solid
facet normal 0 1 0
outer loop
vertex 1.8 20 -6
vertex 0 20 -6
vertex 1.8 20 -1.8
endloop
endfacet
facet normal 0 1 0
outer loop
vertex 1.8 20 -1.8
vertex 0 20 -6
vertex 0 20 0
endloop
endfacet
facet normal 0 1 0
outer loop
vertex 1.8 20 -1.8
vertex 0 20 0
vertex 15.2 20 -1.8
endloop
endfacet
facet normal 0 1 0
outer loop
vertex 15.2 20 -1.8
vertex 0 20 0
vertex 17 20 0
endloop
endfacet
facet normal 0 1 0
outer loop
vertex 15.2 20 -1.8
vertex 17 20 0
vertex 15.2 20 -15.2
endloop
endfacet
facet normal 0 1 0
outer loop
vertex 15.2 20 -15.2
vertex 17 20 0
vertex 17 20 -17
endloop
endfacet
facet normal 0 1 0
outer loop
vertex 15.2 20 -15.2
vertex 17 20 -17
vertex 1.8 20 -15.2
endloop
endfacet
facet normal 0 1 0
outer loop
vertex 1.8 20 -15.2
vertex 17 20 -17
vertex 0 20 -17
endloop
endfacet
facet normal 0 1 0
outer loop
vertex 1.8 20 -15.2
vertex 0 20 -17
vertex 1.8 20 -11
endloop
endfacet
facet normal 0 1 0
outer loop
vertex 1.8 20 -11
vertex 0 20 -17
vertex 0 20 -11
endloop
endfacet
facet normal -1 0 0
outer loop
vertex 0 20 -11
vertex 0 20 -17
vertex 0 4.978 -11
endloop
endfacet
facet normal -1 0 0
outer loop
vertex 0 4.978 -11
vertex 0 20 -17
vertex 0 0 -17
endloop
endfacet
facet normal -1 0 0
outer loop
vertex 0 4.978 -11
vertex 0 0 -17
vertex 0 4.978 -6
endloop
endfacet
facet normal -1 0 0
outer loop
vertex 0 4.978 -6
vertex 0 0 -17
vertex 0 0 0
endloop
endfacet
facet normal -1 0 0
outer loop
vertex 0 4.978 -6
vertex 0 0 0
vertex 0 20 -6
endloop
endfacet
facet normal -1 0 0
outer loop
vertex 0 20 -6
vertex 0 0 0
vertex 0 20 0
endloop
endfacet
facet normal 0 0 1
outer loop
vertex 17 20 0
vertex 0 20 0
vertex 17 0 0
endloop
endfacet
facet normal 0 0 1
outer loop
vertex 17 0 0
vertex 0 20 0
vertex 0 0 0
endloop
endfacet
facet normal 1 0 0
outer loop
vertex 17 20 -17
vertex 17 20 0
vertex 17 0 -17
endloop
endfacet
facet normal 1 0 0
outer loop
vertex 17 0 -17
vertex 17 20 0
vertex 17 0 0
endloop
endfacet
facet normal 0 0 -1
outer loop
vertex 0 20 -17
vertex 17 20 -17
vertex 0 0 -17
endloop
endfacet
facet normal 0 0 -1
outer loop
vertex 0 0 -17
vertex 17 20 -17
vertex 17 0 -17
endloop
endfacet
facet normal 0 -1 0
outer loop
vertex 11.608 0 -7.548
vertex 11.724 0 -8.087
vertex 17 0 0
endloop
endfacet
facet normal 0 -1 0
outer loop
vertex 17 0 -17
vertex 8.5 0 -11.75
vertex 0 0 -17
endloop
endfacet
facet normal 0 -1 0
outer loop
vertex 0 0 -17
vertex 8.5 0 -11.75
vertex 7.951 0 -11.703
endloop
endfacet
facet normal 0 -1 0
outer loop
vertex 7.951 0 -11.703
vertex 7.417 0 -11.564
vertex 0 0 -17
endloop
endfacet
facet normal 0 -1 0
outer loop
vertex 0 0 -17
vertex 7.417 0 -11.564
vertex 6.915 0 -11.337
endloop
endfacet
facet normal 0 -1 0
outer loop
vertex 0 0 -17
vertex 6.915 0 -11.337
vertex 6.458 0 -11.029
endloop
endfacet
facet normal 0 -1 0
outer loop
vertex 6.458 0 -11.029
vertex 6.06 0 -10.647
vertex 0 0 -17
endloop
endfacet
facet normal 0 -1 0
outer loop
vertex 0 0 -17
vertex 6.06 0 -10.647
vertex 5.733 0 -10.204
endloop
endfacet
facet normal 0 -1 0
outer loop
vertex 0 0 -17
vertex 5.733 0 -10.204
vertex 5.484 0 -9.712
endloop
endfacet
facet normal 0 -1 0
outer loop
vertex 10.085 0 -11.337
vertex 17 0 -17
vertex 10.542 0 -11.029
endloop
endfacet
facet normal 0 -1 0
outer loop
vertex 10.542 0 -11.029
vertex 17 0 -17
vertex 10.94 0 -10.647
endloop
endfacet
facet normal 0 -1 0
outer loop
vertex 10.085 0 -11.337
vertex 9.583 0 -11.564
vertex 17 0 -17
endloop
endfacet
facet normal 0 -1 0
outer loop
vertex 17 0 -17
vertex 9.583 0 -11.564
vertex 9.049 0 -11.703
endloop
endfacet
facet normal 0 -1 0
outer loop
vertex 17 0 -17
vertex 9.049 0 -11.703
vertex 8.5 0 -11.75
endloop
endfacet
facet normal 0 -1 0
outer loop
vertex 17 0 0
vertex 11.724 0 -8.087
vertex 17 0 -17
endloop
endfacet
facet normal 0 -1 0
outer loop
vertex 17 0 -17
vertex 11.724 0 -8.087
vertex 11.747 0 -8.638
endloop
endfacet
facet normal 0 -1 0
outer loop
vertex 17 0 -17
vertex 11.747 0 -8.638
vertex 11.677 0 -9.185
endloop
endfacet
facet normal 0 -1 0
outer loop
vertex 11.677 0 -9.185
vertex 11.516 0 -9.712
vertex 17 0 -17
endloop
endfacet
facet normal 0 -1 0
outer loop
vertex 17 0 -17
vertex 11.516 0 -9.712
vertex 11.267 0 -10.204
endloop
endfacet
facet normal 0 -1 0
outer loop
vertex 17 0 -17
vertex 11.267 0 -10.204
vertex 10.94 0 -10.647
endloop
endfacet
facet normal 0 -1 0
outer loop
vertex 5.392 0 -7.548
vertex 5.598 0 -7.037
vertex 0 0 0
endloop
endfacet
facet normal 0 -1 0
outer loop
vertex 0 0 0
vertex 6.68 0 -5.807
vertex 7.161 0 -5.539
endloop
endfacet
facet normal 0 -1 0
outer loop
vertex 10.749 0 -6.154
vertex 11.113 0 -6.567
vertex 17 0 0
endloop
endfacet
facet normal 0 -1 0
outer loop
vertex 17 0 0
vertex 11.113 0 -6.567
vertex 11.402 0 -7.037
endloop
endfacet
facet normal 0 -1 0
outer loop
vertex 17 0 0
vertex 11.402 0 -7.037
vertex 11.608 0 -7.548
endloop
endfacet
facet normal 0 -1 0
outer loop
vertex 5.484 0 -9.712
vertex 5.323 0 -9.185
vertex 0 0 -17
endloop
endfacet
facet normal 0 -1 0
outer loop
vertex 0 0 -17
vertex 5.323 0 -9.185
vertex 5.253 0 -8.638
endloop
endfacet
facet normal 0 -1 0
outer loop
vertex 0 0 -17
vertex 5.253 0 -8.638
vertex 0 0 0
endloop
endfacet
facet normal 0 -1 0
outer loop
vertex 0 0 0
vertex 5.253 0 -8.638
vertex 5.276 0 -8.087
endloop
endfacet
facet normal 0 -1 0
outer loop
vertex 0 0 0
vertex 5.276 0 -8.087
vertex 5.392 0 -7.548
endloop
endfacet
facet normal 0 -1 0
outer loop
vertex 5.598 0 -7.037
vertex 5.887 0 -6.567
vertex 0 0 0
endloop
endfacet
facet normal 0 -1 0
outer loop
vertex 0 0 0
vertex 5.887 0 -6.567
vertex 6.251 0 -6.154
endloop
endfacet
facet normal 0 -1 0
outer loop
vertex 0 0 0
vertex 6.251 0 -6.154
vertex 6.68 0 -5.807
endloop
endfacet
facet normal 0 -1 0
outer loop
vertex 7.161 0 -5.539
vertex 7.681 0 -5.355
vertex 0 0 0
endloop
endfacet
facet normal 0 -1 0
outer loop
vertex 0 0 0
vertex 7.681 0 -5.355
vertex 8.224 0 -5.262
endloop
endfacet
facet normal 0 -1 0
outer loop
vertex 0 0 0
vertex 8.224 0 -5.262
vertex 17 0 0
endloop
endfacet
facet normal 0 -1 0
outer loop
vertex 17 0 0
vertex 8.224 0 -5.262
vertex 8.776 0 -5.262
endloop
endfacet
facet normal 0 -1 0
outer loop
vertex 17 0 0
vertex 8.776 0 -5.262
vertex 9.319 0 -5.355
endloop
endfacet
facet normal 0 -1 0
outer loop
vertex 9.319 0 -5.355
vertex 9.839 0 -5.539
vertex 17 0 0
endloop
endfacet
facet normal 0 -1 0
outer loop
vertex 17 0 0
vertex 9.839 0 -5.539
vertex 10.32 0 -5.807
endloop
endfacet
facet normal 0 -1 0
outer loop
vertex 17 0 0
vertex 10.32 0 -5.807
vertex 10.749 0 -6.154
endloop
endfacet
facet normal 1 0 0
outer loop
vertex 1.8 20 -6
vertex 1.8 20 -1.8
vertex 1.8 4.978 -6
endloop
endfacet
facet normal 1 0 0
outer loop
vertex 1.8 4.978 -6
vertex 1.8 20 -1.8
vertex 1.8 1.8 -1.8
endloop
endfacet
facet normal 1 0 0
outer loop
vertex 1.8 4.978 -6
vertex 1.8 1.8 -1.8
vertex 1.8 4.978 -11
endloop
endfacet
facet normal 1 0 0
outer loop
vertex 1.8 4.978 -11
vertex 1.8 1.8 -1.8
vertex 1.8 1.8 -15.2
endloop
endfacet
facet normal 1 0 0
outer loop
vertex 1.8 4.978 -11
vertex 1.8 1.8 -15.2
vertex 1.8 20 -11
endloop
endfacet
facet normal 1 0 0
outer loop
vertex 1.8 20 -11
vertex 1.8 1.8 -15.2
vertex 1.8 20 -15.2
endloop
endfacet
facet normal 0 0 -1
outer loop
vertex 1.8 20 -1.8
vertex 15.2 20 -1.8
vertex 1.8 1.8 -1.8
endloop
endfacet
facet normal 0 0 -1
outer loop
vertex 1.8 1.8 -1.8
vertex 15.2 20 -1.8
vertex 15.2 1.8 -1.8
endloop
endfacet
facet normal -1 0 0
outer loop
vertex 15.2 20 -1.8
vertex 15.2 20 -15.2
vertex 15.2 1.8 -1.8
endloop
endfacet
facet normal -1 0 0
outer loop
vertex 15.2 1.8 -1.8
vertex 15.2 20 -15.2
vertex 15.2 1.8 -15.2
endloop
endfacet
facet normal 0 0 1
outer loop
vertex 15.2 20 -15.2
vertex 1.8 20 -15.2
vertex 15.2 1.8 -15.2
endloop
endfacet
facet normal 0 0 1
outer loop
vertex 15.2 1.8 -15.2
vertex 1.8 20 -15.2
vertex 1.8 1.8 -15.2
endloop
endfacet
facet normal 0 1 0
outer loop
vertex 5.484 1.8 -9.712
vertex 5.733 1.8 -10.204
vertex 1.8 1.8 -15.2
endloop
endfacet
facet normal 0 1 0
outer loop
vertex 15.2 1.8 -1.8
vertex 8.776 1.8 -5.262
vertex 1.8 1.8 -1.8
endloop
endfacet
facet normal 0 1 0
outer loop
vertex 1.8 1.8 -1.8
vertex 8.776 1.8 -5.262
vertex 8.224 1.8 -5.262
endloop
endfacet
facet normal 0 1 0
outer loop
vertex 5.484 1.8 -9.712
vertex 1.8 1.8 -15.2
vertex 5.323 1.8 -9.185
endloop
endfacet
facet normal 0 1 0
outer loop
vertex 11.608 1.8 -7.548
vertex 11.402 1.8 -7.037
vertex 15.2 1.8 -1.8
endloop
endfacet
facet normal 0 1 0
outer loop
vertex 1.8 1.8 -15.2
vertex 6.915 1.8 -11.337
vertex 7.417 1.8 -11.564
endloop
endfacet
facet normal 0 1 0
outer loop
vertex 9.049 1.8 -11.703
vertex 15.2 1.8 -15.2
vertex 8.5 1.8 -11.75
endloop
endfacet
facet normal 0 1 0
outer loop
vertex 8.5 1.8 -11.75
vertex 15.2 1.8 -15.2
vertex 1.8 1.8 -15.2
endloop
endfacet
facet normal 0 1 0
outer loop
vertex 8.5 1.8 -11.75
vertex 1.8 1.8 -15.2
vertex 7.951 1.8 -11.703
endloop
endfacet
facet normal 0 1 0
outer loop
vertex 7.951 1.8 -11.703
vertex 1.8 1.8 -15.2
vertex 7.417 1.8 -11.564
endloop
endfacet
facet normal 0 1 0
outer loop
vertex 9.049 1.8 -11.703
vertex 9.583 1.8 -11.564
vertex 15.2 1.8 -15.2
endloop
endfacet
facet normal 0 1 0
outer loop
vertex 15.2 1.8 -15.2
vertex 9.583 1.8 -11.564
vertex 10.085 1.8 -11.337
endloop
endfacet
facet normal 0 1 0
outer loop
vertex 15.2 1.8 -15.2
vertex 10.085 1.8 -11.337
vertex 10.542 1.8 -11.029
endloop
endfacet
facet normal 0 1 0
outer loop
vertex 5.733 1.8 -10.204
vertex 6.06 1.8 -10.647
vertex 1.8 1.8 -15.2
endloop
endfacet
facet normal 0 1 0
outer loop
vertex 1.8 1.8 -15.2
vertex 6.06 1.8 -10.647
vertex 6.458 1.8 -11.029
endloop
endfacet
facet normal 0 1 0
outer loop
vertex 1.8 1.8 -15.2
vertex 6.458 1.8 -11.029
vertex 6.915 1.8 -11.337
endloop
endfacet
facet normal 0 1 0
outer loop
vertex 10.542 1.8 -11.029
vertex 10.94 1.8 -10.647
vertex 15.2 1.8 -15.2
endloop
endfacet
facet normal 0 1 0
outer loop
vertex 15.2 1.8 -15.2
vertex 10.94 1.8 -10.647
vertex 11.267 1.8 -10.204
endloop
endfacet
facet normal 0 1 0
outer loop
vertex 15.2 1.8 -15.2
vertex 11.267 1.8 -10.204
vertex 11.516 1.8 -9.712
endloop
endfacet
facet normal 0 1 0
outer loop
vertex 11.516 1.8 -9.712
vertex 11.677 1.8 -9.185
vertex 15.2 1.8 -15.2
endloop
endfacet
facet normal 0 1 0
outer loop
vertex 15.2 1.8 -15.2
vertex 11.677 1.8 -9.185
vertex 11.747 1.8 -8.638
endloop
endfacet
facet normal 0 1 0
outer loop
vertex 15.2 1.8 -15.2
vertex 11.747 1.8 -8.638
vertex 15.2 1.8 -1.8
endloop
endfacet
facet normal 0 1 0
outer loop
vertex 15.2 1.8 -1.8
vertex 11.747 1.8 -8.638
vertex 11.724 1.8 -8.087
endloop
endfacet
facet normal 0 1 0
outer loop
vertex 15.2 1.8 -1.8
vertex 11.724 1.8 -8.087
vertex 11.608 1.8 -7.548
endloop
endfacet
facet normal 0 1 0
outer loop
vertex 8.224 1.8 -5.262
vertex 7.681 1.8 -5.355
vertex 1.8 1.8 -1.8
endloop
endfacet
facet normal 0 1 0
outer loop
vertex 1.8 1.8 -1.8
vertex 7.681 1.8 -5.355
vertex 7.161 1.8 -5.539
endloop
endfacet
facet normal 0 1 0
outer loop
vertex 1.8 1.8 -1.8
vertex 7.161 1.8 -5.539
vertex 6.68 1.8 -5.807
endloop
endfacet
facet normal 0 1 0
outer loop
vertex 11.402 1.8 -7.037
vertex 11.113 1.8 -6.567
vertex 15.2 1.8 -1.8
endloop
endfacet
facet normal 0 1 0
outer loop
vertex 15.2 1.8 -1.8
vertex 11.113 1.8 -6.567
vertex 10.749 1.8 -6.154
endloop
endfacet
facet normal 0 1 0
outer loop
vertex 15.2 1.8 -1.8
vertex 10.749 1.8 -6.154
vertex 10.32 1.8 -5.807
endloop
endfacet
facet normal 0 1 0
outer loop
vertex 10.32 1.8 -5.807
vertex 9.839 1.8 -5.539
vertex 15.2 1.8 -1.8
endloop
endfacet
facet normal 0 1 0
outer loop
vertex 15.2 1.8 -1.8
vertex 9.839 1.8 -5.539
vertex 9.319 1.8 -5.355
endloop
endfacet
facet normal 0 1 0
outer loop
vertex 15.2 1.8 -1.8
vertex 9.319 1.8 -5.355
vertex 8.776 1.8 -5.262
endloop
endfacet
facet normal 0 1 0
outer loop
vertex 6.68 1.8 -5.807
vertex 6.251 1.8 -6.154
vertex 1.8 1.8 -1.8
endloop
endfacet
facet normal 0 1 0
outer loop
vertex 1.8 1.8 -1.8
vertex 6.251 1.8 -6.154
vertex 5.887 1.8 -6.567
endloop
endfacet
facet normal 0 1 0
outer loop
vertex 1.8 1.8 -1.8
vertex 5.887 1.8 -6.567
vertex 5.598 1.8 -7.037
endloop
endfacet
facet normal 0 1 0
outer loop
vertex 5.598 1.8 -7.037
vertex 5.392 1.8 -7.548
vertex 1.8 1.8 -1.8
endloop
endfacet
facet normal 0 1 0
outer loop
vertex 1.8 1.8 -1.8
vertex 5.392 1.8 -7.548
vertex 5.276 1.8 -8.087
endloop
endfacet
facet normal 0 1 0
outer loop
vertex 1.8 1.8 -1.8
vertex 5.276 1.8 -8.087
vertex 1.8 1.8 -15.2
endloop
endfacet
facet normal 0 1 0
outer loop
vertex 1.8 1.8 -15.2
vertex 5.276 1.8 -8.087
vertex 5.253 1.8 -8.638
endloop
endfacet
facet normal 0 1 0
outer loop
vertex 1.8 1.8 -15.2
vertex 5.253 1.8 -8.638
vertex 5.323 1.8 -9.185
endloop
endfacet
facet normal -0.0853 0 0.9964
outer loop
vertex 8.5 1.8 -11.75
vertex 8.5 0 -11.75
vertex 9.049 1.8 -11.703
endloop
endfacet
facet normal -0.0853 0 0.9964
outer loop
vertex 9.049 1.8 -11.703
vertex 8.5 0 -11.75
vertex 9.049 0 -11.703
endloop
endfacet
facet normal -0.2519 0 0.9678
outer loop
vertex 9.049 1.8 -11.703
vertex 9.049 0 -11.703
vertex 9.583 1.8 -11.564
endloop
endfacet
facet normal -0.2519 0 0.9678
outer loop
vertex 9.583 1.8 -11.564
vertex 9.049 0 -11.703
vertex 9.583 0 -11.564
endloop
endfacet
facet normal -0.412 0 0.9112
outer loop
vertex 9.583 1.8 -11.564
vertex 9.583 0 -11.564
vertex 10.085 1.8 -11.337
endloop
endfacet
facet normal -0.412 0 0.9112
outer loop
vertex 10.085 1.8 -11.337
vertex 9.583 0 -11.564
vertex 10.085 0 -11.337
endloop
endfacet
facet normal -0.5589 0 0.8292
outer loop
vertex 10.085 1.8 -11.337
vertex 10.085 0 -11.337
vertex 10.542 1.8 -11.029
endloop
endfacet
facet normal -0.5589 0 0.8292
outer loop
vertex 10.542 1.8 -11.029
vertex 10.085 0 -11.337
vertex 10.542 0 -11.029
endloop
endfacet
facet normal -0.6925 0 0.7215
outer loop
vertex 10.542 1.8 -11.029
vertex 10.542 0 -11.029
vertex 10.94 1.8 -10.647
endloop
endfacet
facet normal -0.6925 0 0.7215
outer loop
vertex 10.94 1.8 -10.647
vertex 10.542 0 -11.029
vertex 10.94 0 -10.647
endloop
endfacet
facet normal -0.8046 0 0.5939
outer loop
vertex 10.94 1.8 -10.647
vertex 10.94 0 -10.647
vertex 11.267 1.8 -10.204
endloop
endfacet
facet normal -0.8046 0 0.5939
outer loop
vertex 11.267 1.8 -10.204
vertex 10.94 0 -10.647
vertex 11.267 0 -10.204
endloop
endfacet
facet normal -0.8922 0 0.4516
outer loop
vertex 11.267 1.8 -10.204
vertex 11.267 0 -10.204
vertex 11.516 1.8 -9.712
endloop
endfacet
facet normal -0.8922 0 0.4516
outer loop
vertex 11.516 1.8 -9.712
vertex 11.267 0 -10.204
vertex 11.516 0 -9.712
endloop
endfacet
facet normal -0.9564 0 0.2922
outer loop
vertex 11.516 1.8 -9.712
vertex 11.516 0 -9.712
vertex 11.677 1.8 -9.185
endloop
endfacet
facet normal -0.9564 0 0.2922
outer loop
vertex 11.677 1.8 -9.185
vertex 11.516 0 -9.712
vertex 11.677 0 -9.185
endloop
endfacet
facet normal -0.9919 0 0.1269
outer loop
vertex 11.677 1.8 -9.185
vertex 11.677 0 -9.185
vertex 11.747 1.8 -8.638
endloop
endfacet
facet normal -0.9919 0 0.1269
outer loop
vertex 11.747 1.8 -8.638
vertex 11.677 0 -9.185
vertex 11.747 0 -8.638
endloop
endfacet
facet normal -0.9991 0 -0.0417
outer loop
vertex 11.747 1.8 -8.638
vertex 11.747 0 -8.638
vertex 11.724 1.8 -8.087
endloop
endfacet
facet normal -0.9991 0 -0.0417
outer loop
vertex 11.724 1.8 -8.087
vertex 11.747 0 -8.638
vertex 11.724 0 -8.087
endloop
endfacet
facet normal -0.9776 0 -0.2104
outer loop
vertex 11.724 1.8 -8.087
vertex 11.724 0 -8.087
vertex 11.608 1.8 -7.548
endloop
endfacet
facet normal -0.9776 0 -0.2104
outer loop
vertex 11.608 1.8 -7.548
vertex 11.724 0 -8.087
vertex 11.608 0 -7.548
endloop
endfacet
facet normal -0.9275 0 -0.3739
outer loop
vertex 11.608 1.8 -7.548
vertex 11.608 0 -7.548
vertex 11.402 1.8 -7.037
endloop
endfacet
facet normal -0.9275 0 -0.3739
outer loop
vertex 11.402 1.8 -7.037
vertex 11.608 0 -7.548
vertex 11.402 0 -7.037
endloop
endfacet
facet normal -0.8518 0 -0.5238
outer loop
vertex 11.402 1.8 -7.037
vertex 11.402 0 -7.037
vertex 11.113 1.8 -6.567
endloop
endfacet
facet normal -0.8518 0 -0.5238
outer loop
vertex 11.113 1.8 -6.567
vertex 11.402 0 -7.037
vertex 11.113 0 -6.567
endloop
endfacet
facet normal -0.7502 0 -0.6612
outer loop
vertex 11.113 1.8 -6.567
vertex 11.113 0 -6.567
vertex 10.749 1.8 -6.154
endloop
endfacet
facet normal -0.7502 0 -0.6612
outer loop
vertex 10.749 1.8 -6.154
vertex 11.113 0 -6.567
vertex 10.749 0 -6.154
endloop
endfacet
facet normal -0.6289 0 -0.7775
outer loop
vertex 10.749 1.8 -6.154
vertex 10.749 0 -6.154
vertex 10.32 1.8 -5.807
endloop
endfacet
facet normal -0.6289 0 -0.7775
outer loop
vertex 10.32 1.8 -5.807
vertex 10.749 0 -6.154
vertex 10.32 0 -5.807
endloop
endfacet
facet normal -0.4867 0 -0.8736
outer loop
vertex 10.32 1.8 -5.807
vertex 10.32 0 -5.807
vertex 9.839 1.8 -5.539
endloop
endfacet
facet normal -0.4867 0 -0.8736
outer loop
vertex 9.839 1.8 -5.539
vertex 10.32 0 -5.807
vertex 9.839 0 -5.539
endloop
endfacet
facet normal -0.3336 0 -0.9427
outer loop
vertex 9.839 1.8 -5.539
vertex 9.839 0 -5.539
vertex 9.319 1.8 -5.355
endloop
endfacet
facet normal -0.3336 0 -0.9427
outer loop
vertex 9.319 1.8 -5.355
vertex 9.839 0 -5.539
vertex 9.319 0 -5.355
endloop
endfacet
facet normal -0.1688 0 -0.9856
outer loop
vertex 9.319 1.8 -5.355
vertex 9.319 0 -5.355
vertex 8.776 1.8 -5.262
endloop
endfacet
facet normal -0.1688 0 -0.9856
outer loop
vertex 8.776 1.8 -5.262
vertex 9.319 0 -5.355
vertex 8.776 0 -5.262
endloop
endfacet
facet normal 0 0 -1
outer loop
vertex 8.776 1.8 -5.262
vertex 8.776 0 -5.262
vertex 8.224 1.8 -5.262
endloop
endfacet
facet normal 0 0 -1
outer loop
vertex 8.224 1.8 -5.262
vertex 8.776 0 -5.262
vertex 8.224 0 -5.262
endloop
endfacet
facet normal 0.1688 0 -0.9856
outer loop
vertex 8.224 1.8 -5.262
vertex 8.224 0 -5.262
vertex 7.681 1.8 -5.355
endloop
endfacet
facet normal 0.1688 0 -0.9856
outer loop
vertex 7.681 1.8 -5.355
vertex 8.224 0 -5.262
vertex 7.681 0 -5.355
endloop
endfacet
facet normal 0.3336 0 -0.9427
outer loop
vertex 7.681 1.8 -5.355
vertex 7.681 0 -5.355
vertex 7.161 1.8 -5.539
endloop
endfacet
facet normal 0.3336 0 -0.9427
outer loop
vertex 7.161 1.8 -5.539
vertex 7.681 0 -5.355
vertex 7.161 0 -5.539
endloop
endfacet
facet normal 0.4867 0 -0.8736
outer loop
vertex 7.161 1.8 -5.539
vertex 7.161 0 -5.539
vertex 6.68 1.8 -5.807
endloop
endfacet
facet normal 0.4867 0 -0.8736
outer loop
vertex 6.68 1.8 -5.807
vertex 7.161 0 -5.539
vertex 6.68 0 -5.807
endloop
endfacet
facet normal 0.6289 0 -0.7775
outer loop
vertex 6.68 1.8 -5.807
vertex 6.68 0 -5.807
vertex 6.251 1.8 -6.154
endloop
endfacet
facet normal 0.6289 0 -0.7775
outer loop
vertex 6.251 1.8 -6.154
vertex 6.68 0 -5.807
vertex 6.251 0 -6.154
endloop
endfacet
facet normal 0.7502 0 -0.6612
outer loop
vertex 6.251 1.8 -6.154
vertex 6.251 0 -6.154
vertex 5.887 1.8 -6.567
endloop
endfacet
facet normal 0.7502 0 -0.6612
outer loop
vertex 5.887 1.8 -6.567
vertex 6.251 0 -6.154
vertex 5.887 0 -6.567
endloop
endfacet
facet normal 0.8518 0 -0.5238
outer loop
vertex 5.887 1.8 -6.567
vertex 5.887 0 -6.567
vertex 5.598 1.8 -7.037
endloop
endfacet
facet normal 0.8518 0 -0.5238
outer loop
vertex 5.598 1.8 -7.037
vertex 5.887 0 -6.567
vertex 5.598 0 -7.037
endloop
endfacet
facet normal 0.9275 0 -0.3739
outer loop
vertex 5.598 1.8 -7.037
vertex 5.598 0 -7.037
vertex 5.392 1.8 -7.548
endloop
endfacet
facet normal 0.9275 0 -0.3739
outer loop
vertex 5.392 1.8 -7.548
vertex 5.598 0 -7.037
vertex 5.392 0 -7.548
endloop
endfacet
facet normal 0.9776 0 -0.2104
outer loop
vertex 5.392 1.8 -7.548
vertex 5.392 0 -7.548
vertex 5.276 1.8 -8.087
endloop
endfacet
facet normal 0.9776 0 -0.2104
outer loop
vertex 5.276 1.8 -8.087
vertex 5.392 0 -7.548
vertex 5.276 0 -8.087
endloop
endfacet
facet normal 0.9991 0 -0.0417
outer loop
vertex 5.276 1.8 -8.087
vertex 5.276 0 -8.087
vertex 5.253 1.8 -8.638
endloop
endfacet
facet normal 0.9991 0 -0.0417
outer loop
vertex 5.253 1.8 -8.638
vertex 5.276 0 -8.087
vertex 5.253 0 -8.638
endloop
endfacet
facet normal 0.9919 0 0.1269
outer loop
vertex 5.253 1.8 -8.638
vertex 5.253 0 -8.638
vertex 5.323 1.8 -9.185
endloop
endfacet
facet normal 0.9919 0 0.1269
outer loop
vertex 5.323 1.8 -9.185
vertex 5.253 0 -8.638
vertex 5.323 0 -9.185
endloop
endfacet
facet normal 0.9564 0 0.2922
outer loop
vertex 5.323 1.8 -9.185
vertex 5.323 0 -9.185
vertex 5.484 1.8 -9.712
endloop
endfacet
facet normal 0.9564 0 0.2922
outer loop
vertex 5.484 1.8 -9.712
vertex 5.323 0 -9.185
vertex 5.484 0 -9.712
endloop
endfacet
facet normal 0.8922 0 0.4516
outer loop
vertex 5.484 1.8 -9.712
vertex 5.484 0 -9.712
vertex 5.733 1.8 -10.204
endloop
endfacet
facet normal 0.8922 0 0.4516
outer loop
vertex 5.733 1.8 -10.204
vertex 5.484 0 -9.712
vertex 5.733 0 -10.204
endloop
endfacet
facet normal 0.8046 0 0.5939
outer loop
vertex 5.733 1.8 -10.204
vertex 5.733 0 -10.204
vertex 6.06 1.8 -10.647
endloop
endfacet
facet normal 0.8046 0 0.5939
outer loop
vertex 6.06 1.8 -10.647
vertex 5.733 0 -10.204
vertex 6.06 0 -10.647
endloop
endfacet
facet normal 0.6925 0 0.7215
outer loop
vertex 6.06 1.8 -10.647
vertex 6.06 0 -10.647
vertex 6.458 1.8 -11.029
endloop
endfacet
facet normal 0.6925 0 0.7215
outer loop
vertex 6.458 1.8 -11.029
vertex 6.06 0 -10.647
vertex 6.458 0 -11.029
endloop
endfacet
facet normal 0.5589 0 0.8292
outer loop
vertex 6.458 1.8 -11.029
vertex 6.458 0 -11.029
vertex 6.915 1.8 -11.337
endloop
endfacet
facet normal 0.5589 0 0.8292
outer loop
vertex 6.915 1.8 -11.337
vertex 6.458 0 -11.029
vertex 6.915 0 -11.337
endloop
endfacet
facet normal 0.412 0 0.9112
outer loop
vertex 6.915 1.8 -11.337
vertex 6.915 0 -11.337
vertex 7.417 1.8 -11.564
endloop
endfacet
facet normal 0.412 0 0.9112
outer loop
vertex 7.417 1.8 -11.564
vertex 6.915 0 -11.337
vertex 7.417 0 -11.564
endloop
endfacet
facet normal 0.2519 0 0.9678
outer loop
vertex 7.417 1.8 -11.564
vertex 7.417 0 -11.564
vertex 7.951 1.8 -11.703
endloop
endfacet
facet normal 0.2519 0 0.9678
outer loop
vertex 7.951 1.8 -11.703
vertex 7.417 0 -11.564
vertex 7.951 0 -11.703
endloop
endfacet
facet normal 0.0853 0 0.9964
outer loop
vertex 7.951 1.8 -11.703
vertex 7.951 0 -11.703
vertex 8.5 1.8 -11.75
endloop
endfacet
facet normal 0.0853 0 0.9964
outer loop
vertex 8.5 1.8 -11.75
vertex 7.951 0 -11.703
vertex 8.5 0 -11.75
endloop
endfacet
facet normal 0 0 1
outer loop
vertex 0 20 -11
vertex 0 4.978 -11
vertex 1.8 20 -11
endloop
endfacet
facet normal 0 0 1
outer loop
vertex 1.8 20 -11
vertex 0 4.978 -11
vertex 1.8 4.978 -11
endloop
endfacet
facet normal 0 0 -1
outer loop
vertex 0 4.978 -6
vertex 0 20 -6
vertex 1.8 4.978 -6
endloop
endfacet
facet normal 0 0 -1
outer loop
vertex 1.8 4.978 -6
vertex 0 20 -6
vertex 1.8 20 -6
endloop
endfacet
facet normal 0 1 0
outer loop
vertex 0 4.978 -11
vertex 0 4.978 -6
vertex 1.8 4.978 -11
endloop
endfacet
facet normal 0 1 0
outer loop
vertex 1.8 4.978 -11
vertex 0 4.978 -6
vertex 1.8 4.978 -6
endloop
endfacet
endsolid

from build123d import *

# Parameters (mm, degrees)
SKETCH1_W                  = 17
SKETCH1_H                  = 17
BOSS_EXTRUDE1_DEPTH        = 20
SHELL1_T                   = -1.8
F_6_5_6_5_DIAMETER_HOLE1_D = 6.5
SKETCH5_W                  = 5
SKETCH5_H                  = 15.022252834
CUT_EXTRUDE1_DEPTH         = 4


with BuildPart() as part:
    # Sketch1 → Boss-Extrude1 (new body)
    with BuildSketch(Plane(origin=(0, 0, 0), x_dir=(1, 0, 0), z_dir=(0, 1, 0))):
        with Locations((8.5, 8.5)):
            Rectangle(SKETCH1_W, SKETCH1_H)
    extrude(amount=BOSS_EXTRUDE1_DEPTH)

    # Shell1
    shell1_openings = [part.faces().sort_by_distance(p)[0] for p in [
        (8.5, 20, -8.5),
    ]]
    offset(amount=SHELL1_T, openings=shell1_openings, kind=Kind.INTERSECTION)

    # Ø6.5 (6.5) Diameter Hole1 (through all)
    with Locations(Plane(origin=(0, 0, 0), x_dir=(-1, 0, 0), z_dir=(0, -1, 0))):
        with Locations((-8.5, 8.5)):
            Hole(F_6_5_6_5_DIAMETER_HOLE1_D / 2)

    # Sketch5 → Cut-Extrude1 (cut)
    with BuildSketch(Plane.ZY):
        with Locations((-8.5, 12.488873583)):
            Rectangle(SKETCH5_W, SKETCH5_H)
    extrude(amount=-CUT_EXTRUDE1_DEPTH, mode=Mode.SUBTRACT)


solid = part.part
